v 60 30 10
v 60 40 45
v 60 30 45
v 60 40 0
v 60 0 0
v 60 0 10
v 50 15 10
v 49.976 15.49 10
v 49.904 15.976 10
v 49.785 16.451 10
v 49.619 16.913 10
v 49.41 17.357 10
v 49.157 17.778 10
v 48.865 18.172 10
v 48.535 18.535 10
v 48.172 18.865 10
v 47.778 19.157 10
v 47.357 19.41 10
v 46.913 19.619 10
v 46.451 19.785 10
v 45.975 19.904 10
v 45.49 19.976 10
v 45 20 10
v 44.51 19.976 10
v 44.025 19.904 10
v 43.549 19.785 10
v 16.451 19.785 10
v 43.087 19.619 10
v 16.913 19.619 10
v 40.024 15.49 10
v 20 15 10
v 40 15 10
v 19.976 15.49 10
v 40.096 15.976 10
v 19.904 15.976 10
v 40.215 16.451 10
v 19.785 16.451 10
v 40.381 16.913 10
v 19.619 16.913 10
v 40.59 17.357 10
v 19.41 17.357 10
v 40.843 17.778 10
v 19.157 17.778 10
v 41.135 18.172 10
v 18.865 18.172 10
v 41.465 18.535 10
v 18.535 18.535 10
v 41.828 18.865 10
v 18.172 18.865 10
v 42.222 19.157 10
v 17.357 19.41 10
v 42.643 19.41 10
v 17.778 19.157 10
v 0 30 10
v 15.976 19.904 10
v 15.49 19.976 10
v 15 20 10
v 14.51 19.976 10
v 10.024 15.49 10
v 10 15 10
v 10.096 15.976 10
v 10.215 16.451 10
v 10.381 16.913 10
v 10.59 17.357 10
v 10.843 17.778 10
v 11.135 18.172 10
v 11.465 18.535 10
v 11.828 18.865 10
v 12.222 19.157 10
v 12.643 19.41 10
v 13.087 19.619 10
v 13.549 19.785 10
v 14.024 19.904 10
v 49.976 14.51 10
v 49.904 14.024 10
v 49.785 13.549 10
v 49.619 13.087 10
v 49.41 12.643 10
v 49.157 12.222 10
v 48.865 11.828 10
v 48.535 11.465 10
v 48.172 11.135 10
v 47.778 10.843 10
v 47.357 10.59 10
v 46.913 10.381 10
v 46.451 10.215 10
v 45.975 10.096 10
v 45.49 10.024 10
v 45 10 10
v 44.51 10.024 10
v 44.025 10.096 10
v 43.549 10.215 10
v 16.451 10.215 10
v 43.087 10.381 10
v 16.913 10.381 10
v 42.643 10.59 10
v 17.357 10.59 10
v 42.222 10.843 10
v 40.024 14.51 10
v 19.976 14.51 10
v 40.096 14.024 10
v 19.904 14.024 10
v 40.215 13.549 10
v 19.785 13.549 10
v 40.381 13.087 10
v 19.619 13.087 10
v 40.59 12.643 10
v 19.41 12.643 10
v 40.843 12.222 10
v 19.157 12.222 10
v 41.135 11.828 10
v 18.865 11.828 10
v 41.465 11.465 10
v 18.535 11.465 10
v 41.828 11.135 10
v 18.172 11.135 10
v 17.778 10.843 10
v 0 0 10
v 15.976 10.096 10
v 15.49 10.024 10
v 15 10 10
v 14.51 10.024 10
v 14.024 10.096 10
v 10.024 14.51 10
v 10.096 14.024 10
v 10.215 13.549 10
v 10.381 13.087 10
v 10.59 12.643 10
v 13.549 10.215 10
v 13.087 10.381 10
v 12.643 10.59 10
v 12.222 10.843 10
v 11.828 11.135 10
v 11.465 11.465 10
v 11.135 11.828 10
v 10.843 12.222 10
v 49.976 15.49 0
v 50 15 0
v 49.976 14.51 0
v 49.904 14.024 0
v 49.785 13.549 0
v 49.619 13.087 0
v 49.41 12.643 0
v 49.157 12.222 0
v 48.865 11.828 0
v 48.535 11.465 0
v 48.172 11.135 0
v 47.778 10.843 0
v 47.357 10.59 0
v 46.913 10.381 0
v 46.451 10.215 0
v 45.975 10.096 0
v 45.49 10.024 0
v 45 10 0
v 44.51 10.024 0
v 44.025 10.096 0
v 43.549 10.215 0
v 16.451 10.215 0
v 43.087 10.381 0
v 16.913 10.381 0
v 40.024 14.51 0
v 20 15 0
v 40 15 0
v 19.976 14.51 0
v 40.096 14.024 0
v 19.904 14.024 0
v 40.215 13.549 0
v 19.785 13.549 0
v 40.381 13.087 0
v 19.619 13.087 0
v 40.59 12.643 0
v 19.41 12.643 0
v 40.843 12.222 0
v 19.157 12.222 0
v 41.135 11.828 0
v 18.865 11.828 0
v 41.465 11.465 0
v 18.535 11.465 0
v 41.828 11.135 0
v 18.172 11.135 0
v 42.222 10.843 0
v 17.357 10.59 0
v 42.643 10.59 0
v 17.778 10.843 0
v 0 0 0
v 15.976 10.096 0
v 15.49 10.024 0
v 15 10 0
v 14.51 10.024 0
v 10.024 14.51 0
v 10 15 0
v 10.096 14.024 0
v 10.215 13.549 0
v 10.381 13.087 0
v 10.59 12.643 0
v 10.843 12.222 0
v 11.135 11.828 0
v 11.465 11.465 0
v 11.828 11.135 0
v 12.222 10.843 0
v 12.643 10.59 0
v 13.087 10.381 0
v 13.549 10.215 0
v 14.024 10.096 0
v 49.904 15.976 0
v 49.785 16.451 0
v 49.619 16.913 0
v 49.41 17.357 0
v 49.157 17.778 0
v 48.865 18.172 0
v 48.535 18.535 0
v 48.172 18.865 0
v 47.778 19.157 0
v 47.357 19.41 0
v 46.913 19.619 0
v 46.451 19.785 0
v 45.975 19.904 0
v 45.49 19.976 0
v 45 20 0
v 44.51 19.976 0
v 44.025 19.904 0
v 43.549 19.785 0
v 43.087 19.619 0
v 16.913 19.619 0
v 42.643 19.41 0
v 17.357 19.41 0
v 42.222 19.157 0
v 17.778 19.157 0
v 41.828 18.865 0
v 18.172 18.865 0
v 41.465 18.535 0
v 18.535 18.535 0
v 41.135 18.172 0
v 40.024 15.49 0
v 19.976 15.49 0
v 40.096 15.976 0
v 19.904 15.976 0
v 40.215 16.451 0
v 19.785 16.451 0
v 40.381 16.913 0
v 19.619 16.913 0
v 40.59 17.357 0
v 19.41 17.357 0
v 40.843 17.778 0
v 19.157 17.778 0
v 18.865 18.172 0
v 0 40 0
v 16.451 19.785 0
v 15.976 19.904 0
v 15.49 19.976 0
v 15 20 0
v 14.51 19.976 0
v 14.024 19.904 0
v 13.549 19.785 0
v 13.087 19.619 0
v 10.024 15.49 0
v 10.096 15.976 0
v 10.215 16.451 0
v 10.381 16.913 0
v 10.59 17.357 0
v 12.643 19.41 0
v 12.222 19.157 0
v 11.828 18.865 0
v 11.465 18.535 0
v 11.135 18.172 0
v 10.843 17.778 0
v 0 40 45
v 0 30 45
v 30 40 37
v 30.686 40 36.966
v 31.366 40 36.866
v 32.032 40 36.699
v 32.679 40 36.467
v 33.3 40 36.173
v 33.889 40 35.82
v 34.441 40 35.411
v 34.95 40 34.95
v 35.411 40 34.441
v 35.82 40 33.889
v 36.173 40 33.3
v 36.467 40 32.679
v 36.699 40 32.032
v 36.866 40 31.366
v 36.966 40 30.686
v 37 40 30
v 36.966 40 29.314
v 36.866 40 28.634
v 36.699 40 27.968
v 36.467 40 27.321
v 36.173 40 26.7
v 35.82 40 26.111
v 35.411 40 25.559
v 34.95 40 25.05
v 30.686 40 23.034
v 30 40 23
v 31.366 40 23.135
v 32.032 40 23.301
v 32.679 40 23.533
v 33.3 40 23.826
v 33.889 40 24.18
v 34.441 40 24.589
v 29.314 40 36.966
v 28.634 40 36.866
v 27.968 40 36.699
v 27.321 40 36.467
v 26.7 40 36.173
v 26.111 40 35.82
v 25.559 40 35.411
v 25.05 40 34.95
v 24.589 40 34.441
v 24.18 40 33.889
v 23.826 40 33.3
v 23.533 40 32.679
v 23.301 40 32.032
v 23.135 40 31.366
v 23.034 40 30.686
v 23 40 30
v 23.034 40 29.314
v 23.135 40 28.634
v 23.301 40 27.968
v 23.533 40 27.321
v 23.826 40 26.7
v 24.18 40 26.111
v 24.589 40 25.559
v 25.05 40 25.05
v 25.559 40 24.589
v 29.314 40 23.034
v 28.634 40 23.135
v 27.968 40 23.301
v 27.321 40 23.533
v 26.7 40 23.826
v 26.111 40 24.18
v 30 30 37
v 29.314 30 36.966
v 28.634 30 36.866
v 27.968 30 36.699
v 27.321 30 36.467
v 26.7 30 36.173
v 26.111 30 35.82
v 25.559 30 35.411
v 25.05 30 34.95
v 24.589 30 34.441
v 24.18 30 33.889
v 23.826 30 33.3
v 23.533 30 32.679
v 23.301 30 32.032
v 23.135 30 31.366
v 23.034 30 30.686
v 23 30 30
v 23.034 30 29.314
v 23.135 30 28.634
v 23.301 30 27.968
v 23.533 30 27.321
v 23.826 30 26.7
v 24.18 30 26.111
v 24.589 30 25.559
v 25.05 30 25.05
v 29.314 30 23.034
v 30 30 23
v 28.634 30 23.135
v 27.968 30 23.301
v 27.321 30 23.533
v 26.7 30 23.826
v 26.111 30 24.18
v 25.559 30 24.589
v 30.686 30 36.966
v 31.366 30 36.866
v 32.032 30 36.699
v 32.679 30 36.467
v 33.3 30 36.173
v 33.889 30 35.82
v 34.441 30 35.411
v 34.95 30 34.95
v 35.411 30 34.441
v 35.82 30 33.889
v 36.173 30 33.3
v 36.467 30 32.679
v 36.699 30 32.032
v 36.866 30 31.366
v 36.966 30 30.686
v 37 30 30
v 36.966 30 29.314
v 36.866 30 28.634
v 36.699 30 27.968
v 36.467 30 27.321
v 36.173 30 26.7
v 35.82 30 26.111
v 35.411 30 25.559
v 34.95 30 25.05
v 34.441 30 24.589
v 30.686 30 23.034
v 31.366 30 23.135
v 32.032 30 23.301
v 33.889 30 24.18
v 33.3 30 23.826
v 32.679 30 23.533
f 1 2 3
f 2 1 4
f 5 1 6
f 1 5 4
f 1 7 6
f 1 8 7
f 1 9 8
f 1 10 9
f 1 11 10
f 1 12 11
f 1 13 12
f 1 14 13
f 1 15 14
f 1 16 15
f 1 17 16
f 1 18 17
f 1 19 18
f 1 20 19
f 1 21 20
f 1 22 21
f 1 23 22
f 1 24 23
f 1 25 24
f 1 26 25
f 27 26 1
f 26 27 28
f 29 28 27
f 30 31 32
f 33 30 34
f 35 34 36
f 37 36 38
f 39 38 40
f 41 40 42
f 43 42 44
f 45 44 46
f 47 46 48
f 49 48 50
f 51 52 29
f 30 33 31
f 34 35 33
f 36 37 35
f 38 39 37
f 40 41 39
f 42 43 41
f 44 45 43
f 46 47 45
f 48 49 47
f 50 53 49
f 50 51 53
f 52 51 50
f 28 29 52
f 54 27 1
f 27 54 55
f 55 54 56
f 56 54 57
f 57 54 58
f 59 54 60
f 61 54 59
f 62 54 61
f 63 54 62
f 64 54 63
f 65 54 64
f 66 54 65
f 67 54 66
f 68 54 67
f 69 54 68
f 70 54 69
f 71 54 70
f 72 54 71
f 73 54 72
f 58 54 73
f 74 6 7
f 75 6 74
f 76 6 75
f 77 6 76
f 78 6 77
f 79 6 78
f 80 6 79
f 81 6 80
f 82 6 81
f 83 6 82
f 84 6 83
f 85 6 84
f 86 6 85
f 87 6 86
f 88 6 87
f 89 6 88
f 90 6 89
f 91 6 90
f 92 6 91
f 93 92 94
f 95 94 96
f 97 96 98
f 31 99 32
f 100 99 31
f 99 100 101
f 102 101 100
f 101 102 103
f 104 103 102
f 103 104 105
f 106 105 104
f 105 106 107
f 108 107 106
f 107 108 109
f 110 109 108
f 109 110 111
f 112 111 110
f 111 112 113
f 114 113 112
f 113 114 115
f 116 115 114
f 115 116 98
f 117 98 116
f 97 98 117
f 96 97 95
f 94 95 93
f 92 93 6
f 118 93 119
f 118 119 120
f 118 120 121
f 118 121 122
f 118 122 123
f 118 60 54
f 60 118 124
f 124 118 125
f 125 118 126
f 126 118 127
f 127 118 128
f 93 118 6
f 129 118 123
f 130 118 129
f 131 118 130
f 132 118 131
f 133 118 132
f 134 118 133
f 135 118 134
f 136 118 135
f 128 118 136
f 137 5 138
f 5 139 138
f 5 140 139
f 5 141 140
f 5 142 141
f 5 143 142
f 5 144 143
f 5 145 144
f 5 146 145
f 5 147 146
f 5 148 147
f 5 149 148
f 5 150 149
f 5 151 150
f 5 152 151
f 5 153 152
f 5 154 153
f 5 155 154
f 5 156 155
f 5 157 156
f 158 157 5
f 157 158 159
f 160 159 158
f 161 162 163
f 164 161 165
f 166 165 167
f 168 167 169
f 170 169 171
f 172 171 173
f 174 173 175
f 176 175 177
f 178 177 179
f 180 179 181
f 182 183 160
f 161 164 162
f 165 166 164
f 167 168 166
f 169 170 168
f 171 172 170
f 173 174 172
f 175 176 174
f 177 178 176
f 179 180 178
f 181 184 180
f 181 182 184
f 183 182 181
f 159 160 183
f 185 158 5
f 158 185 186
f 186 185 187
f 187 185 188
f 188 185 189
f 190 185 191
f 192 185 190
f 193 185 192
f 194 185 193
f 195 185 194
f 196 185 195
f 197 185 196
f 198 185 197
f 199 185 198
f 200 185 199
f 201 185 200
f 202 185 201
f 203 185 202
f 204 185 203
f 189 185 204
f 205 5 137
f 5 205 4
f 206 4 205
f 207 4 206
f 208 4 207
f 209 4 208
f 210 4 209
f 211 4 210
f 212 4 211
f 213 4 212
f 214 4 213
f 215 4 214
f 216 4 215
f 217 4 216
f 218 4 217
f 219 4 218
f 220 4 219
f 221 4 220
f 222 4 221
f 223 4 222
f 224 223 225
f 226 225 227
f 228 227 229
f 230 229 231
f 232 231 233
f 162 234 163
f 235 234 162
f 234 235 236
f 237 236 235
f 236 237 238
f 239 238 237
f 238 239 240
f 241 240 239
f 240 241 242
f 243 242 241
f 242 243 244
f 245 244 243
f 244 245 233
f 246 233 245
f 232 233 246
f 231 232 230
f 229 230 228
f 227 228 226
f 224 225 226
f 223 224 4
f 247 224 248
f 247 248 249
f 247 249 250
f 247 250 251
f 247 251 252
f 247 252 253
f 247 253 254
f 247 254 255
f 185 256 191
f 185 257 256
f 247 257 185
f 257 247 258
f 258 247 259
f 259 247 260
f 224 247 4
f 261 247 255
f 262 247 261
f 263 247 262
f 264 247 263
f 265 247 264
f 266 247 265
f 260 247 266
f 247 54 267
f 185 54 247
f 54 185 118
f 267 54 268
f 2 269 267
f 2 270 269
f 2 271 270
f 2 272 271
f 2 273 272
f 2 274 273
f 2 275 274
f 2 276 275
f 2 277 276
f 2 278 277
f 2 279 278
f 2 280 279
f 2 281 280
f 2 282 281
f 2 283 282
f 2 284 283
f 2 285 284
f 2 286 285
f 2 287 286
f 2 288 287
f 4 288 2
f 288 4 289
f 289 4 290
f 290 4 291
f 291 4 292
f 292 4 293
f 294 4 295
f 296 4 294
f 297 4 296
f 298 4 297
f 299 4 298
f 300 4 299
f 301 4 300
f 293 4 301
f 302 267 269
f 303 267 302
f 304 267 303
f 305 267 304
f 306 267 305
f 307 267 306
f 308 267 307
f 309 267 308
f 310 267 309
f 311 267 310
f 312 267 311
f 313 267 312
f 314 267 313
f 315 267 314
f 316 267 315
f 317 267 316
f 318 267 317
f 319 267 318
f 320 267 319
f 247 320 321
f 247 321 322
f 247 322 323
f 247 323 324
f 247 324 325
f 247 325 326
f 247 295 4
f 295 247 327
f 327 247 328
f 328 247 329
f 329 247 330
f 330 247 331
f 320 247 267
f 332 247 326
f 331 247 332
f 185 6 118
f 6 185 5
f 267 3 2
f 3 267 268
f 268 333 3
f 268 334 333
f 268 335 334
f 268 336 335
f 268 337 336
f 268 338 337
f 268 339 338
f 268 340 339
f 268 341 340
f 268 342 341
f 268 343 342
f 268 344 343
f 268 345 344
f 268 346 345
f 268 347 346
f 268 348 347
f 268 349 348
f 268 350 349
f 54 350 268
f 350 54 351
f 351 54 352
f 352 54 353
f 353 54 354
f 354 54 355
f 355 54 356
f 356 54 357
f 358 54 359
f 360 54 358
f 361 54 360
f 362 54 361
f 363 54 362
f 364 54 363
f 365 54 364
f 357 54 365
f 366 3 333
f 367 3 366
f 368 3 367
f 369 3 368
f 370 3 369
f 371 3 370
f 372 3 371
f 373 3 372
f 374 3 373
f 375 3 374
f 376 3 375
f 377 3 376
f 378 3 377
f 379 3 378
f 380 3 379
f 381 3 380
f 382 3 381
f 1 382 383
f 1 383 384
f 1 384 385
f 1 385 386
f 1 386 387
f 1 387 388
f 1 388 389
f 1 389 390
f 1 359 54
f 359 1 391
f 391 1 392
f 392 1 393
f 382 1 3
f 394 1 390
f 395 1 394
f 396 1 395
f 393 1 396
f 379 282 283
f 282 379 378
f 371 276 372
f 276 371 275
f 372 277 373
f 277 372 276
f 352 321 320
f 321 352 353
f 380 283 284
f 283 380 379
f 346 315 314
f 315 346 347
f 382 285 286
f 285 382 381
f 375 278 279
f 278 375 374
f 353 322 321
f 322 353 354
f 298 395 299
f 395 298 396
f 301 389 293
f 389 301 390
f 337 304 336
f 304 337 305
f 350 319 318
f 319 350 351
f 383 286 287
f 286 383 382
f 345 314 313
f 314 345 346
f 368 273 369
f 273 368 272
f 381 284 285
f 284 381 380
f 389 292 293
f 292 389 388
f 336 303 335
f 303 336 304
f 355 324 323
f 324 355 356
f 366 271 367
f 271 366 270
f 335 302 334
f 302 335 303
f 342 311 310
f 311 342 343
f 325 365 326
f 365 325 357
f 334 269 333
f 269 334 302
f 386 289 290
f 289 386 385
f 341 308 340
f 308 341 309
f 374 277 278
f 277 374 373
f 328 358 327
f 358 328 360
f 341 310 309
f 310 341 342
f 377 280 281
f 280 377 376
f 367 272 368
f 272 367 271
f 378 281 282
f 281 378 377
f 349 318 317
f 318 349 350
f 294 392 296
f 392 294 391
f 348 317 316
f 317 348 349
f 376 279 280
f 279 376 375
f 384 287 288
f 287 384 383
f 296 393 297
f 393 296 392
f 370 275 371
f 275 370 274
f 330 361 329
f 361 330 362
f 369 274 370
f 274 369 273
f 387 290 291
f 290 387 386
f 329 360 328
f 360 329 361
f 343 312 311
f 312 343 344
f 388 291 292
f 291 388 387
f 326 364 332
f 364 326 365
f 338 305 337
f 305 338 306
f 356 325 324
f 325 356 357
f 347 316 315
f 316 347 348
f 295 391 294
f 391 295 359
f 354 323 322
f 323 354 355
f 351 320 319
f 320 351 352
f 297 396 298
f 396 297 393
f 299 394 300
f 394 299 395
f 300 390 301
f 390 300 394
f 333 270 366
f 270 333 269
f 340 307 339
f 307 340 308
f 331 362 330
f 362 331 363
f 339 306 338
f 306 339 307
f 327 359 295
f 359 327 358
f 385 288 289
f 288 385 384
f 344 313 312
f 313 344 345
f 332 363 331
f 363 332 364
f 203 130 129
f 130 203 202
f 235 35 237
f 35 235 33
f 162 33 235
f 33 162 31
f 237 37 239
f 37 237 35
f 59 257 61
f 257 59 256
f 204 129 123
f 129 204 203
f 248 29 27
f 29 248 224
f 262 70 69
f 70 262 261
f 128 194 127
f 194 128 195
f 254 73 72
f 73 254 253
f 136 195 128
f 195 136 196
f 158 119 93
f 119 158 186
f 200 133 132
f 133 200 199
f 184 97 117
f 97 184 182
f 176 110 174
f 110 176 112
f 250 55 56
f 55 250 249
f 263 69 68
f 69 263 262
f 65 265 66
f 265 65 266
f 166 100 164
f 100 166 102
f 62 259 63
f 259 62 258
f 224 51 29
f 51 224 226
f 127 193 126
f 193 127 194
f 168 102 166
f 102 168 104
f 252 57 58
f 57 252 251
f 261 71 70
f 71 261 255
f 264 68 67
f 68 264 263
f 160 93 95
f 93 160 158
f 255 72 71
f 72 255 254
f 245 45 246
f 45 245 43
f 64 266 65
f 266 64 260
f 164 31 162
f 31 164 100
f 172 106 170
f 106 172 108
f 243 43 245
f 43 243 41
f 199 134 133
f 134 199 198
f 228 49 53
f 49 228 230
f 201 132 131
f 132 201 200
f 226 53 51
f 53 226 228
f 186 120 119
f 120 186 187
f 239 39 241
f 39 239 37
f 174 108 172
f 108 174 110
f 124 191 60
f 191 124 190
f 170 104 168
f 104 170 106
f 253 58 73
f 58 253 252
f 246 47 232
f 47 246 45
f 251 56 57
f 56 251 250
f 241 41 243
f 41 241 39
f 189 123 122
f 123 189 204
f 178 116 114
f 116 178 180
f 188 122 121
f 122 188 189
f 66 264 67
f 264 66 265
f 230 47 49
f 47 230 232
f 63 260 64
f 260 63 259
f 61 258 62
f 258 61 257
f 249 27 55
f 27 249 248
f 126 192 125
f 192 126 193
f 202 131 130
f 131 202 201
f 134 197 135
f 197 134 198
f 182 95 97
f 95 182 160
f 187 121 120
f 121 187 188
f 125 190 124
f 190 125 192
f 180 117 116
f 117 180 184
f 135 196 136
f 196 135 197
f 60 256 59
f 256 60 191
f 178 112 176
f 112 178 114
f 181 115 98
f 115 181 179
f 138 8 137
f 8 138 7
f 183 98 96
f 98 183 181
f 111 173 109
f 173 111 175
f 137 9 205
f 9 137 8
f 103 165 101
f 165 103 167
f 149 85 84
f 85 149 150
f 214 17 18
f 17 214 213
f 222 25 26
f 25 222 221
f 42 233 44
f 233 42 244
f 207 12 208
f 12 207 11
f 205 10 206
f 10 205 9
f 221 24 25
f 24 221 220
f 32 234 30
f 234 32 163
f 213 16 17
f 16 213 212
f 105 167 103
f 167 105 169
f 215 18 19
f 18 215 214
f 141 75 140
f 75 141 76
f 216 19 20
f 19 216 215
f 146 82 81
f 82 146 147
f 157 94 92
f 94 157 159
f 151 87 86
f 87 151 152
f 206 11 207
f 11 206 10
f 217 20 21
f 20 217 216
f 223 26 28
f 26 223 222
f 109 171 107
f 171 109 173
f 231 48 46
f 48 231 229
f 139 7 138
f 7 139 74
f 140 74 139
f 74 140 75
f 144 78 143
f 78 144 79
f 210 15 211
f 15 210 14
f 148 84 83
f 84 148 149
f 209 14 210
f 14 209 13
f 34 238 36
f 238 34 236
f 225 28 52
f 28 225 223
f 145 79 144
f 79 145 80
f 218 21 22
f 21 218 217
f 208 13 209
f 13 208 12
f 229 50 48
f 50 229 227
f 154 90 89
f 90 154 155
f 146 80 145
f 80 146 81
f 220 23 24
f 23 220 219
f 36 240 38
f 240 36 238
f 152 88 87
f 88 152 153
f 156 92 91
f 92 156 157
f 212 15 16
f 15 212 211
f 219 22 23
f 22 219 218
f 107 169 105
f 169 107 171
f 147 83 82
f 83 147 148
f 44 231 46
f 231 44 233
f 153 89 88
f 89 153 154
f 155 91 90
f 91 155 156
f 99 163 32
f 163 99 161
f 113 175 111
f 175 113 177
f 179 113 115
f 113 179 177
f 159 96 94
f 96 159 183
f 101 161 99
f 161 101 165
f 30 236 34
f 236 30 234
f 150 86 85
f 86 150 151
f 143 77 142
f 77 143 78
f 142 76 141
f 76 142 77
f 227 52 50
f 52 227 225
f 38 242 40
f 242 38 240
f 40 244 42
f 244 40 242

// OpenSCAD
// 角架（bracket）— 由 ortho_lib_work/objects.py 產生，請改 objects.py 後重建
// 底板 60×40×10；後方立板 60×10×45；立板中央有直徑 14 的前後貫穿孔（中心高 30），底板左右各有一個直徑 10 的垂直孔。
difference() {
  union() {
    translate([0,0,0]) cube([60,40,10]);
    translate([0,30,0]) cube([60,10,45]);
  }
  union() {
    multmatrix([[1,0,0,0],[0,0,-1,41],[0,1,0,0],[0,0,0,1]]) translate([30,30,0]) cylinder(h=12, r=7, $fn=64);
    multmatrix([[1,0,0,0],[0,1,0,0],[0,0,1,-1],[0,0,0,1]]) translate([15,15,0]) cylinder(h=12, r=5, $fn=64);
    multmatrix([[1,0,0,0],[0,1,0,0],[0,0,1,-1],[0,0,0,1]]) translate([45,15,0]) cylinder(h=12, r=5, $fn=64);
  }
}
